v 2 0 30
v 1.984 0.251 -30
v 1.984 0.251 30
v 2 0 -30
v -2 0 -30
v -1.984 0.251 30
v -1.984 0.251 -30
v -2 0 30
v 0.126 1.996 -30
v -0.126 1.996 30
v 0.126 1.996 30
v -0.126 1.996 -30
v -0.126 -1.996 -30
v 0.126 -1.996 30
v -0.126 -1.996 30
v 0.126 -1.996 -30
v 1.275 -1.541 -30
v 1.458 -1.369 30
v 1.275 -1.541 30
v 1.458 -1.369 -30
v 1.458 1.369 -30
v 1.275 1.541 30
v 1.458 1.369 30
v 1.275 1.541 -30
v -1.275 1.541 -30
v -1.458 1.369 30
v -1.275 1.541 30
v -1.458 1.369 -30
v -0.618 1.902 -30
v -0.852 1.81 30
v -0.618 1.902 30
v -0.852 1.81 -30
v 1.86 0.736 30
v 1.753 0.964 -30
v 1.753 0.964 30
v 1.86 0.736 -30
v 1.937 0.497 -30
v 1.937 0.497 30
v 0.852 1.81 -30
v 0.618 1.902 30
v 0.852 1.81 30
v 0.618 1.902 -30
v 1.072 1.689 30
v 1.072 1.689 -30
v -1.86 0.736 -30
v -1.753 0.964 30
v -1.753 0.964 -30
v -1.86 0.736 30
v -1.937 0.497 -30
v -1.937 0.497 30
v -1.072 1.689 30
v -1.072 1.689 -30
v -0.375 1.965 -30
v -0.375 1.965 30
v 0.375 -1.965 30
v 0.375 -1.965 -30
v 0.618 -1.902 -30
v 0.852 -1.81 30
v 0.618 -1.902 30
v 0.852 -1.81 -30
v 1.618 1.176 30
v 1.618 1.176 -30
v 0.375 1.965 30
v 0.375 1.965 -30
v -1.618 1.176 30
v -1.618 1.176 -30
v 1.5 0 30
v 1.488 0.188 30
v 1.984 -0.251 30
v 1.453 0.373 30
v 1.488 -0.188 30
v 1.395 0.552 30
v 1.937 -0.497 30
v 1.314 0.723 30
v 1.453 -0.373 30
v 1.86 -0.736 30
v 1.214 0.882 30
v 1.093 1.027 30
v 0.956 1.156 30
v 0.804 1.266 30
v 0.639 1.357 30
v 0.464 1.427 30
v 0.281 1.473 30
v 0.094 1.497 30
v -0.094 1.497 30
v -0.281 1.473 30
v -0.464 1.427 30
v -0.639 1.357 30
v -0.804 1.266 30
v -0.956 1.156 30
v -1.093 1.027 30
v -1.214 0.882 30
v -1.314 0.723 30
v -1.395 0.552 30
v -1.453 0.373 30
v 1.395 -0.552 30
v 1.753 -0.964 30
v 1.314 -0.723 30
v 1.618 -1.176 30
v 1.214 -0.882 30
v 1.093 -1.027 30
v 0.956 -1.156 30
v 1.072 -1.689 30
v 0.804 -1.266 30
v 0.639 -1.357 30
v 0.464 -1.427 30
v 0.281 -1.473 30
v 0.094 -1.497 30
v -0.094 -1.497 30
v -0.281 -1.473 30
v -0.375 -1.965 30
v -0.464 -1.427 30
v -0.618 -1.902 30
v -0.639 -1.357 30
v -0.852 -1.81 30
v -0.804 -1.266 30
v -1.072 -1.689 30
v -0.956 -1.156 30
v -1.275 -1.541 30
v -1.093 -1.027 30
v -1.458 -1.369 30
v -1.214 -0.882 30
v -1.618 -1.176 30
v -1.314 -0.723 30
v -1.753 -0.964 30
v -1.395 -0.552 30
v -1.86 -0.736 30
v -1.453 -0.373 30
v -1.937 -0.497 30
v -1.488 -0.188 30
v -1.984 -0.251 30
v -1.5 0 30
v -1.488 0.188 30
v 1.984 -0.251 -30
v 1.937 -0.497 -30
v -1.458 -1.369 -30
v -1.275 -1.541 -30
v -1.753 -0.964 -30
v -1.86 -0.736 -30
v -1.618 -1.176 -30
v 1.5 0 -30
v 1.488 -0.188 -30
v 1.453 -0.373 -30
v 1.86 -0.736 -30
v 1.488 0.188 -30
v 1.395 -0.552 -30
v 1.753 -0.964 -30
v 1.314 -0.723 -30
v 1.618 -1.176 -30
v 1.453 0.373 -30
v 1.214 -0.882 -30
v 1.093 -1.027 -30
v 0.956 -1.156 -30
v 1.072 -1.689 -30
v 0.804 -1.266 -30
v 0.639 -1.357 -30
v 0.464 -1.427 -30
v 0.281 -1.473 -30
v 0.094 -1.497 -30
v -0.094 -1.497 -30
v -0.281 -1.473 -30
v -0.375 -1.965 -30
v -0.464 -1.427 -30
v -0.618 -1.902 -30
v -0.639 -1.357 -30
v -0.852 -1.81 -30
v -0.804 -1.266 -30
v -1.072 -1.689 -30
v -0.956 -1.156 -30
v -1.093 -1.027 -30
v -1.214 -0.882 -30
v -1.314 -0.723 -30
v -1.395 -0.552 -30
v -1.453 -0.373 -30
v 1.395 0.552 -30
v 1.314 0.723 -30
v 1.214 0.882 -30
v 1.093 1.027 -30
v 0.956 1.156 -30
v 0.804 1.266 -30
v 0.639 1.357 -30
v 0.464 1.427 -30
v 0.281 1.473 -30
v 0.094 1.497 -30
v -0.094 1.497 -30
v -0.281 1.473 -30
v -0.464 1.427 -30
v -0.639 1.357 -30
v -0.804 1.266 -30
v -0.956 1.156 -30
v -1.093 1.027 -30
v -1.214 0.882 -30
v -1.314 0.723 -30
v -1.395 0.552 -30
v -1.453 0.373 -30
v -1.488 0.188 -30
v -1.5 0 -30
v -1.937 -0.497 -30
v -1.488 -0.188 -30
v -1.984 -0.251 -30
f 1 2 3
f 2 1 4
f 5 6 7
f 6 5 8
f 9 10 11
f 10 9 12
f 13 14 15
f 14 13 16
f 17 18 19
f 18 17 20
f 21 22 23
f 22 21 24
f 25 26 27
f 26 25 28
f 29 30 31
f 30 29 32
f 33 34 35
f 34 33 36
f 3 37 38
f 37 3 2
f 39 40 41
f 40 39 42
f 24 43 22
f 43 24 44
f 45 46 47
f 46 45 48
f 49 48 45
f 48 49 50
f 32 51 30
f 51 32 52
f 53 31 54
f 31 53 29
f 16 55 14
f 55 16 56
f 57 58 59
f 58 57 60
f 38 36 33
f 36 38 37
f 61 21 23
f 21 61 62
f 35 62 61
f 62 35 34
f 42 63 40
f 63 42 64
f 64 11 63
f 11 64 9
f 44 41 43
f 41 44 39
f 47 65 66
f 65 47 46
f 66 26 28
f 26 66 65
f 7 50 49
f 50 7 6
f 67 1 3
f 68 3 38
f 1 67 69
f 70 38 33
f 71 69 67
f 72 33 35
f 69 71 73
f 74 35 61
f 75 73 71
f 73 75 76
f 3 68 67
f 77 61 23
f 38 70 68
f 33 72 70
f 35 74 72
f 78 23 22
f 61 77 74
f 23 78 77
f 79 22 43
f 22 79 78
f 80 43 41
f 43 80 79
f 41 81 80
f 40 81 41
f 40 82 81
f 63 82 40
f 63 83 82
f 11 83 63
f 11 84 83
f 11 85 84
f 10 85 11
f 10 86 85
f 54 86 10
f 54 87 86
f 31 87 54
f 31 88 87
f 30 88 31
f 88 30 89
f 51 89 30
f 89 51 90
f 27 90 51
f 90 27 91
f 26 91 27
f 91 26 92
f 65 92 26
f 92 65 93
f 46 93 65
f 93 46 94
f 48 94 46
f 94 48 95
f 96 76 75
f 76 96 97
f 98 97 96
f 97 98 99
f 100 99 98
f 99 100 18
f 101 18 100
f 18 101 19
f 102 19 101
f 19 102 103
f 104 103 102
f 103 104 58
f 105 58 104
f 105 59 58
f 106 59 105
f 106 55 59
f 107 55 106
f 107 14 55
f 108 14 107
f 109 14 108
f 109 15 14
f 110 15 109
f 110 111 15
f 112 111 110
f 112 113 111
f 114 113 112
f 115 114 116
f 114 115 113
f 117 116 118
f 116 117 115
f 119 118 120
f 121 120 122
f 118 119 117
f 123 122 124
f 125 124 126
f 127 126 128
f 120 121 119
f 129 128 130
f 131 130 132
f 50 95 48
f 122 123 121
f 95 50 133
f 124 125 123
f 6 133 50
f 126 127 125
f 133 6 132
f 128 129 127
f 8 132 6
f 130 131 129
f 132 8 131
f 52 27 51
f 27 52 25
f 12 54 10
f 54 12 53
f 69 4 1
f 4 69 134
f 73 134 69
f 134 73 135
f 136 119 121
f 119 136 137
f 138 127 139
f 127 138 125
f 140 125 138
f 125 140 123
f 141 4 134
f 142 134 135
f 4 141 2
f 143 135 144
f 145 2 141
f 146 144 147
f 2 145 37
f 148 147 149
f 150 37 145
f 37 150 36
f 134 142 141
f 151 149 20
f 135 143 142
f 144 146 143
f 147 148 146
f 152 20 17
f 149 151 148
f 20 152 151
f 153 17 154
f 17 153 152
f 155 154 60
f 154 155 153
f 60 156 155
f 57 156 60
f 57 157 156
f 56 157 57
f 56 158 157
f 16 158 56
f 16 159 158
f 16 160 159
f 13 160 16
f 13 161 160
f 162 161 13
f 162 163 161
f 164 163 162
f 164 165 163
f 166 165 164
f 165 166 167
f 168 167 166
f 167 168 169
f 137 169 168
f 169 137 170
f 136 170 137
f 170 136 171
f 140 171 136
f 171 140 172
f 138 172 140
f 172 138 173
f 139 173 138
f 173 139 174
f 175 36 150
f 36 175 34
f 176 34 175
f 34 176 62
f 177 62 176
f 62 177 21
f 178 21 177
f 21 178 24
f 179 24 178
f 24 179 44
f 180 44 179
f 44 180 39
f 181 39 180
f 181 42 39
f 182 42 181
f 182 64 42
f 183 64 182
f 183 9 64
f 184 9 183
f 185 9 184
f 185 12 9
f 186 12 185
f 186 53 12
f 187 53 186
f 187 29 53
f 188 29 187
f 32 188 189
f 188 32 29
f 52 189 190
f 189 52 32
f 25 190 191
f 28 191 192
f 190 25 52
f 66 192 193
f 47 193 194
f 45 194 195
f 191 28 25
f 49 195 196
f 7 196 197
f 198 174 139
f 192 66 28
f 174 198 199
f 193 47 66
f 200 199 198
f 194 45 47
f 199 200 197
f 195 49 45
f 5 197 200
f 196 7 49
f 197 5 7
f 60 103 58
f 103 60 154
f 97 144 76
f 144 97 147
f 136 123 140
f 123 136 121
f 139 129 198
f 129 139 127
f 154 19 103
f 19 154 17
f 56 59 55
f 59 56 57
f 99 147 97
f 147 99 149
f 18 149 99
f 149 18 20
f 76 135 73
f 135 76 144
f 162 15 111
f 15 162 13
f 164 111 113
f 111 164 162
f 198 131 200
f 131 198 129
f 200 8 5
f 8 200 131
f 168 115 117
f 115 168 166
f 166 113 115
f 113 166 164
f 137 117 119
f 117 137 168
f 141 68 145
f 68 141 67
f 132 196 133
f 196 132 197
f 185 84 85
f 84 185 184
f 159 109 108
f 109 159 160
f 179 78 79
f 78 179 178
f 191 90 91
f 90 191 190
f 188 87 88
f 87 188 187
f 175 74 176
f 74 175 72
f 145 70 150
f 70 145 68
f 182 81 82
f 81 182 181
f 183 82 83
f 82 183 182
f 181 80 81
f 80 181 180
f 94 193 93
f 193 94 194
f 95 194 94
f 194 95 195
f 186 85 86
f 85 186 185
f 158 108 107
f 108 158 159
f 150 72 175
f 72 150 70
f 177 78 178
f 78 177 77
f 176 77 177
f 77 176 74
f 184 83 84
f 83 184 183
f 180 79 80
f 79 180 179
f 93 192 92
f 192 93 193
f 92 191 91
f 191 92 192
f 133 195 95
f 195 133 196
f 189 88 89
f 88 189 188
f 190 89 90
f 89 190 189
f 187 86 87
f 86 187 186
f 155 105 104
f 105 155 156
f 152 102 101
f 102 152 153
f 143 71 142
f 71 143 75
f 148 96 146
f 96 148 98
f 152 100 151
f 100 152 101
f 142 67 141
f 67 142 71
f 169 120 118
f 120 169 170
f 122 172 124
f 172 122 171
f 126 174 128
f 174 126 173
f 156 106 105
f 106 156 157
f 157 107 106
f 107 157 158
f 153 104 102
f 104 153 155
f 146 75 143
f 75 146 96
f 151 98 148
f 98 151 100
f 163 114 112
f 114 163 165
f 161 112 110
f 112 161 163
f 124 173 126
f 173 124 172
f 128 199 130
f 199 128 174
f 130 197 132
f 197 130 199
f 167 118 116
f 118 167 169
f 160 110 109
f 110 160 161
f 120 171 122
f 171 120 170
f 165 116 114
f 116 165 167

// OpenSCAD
$fn = 50;


difference() {
	union() {
		translate(v = [0, 0, -30.0000000000]) {
			cylinder(h = 60, r = 2.0000000000);
		}
	}
	union() {
		translate(v = [0, 0, -100.0000000000]) {
			cylinder(h = 200, r = 1.5000000000);
		}
	}
}
